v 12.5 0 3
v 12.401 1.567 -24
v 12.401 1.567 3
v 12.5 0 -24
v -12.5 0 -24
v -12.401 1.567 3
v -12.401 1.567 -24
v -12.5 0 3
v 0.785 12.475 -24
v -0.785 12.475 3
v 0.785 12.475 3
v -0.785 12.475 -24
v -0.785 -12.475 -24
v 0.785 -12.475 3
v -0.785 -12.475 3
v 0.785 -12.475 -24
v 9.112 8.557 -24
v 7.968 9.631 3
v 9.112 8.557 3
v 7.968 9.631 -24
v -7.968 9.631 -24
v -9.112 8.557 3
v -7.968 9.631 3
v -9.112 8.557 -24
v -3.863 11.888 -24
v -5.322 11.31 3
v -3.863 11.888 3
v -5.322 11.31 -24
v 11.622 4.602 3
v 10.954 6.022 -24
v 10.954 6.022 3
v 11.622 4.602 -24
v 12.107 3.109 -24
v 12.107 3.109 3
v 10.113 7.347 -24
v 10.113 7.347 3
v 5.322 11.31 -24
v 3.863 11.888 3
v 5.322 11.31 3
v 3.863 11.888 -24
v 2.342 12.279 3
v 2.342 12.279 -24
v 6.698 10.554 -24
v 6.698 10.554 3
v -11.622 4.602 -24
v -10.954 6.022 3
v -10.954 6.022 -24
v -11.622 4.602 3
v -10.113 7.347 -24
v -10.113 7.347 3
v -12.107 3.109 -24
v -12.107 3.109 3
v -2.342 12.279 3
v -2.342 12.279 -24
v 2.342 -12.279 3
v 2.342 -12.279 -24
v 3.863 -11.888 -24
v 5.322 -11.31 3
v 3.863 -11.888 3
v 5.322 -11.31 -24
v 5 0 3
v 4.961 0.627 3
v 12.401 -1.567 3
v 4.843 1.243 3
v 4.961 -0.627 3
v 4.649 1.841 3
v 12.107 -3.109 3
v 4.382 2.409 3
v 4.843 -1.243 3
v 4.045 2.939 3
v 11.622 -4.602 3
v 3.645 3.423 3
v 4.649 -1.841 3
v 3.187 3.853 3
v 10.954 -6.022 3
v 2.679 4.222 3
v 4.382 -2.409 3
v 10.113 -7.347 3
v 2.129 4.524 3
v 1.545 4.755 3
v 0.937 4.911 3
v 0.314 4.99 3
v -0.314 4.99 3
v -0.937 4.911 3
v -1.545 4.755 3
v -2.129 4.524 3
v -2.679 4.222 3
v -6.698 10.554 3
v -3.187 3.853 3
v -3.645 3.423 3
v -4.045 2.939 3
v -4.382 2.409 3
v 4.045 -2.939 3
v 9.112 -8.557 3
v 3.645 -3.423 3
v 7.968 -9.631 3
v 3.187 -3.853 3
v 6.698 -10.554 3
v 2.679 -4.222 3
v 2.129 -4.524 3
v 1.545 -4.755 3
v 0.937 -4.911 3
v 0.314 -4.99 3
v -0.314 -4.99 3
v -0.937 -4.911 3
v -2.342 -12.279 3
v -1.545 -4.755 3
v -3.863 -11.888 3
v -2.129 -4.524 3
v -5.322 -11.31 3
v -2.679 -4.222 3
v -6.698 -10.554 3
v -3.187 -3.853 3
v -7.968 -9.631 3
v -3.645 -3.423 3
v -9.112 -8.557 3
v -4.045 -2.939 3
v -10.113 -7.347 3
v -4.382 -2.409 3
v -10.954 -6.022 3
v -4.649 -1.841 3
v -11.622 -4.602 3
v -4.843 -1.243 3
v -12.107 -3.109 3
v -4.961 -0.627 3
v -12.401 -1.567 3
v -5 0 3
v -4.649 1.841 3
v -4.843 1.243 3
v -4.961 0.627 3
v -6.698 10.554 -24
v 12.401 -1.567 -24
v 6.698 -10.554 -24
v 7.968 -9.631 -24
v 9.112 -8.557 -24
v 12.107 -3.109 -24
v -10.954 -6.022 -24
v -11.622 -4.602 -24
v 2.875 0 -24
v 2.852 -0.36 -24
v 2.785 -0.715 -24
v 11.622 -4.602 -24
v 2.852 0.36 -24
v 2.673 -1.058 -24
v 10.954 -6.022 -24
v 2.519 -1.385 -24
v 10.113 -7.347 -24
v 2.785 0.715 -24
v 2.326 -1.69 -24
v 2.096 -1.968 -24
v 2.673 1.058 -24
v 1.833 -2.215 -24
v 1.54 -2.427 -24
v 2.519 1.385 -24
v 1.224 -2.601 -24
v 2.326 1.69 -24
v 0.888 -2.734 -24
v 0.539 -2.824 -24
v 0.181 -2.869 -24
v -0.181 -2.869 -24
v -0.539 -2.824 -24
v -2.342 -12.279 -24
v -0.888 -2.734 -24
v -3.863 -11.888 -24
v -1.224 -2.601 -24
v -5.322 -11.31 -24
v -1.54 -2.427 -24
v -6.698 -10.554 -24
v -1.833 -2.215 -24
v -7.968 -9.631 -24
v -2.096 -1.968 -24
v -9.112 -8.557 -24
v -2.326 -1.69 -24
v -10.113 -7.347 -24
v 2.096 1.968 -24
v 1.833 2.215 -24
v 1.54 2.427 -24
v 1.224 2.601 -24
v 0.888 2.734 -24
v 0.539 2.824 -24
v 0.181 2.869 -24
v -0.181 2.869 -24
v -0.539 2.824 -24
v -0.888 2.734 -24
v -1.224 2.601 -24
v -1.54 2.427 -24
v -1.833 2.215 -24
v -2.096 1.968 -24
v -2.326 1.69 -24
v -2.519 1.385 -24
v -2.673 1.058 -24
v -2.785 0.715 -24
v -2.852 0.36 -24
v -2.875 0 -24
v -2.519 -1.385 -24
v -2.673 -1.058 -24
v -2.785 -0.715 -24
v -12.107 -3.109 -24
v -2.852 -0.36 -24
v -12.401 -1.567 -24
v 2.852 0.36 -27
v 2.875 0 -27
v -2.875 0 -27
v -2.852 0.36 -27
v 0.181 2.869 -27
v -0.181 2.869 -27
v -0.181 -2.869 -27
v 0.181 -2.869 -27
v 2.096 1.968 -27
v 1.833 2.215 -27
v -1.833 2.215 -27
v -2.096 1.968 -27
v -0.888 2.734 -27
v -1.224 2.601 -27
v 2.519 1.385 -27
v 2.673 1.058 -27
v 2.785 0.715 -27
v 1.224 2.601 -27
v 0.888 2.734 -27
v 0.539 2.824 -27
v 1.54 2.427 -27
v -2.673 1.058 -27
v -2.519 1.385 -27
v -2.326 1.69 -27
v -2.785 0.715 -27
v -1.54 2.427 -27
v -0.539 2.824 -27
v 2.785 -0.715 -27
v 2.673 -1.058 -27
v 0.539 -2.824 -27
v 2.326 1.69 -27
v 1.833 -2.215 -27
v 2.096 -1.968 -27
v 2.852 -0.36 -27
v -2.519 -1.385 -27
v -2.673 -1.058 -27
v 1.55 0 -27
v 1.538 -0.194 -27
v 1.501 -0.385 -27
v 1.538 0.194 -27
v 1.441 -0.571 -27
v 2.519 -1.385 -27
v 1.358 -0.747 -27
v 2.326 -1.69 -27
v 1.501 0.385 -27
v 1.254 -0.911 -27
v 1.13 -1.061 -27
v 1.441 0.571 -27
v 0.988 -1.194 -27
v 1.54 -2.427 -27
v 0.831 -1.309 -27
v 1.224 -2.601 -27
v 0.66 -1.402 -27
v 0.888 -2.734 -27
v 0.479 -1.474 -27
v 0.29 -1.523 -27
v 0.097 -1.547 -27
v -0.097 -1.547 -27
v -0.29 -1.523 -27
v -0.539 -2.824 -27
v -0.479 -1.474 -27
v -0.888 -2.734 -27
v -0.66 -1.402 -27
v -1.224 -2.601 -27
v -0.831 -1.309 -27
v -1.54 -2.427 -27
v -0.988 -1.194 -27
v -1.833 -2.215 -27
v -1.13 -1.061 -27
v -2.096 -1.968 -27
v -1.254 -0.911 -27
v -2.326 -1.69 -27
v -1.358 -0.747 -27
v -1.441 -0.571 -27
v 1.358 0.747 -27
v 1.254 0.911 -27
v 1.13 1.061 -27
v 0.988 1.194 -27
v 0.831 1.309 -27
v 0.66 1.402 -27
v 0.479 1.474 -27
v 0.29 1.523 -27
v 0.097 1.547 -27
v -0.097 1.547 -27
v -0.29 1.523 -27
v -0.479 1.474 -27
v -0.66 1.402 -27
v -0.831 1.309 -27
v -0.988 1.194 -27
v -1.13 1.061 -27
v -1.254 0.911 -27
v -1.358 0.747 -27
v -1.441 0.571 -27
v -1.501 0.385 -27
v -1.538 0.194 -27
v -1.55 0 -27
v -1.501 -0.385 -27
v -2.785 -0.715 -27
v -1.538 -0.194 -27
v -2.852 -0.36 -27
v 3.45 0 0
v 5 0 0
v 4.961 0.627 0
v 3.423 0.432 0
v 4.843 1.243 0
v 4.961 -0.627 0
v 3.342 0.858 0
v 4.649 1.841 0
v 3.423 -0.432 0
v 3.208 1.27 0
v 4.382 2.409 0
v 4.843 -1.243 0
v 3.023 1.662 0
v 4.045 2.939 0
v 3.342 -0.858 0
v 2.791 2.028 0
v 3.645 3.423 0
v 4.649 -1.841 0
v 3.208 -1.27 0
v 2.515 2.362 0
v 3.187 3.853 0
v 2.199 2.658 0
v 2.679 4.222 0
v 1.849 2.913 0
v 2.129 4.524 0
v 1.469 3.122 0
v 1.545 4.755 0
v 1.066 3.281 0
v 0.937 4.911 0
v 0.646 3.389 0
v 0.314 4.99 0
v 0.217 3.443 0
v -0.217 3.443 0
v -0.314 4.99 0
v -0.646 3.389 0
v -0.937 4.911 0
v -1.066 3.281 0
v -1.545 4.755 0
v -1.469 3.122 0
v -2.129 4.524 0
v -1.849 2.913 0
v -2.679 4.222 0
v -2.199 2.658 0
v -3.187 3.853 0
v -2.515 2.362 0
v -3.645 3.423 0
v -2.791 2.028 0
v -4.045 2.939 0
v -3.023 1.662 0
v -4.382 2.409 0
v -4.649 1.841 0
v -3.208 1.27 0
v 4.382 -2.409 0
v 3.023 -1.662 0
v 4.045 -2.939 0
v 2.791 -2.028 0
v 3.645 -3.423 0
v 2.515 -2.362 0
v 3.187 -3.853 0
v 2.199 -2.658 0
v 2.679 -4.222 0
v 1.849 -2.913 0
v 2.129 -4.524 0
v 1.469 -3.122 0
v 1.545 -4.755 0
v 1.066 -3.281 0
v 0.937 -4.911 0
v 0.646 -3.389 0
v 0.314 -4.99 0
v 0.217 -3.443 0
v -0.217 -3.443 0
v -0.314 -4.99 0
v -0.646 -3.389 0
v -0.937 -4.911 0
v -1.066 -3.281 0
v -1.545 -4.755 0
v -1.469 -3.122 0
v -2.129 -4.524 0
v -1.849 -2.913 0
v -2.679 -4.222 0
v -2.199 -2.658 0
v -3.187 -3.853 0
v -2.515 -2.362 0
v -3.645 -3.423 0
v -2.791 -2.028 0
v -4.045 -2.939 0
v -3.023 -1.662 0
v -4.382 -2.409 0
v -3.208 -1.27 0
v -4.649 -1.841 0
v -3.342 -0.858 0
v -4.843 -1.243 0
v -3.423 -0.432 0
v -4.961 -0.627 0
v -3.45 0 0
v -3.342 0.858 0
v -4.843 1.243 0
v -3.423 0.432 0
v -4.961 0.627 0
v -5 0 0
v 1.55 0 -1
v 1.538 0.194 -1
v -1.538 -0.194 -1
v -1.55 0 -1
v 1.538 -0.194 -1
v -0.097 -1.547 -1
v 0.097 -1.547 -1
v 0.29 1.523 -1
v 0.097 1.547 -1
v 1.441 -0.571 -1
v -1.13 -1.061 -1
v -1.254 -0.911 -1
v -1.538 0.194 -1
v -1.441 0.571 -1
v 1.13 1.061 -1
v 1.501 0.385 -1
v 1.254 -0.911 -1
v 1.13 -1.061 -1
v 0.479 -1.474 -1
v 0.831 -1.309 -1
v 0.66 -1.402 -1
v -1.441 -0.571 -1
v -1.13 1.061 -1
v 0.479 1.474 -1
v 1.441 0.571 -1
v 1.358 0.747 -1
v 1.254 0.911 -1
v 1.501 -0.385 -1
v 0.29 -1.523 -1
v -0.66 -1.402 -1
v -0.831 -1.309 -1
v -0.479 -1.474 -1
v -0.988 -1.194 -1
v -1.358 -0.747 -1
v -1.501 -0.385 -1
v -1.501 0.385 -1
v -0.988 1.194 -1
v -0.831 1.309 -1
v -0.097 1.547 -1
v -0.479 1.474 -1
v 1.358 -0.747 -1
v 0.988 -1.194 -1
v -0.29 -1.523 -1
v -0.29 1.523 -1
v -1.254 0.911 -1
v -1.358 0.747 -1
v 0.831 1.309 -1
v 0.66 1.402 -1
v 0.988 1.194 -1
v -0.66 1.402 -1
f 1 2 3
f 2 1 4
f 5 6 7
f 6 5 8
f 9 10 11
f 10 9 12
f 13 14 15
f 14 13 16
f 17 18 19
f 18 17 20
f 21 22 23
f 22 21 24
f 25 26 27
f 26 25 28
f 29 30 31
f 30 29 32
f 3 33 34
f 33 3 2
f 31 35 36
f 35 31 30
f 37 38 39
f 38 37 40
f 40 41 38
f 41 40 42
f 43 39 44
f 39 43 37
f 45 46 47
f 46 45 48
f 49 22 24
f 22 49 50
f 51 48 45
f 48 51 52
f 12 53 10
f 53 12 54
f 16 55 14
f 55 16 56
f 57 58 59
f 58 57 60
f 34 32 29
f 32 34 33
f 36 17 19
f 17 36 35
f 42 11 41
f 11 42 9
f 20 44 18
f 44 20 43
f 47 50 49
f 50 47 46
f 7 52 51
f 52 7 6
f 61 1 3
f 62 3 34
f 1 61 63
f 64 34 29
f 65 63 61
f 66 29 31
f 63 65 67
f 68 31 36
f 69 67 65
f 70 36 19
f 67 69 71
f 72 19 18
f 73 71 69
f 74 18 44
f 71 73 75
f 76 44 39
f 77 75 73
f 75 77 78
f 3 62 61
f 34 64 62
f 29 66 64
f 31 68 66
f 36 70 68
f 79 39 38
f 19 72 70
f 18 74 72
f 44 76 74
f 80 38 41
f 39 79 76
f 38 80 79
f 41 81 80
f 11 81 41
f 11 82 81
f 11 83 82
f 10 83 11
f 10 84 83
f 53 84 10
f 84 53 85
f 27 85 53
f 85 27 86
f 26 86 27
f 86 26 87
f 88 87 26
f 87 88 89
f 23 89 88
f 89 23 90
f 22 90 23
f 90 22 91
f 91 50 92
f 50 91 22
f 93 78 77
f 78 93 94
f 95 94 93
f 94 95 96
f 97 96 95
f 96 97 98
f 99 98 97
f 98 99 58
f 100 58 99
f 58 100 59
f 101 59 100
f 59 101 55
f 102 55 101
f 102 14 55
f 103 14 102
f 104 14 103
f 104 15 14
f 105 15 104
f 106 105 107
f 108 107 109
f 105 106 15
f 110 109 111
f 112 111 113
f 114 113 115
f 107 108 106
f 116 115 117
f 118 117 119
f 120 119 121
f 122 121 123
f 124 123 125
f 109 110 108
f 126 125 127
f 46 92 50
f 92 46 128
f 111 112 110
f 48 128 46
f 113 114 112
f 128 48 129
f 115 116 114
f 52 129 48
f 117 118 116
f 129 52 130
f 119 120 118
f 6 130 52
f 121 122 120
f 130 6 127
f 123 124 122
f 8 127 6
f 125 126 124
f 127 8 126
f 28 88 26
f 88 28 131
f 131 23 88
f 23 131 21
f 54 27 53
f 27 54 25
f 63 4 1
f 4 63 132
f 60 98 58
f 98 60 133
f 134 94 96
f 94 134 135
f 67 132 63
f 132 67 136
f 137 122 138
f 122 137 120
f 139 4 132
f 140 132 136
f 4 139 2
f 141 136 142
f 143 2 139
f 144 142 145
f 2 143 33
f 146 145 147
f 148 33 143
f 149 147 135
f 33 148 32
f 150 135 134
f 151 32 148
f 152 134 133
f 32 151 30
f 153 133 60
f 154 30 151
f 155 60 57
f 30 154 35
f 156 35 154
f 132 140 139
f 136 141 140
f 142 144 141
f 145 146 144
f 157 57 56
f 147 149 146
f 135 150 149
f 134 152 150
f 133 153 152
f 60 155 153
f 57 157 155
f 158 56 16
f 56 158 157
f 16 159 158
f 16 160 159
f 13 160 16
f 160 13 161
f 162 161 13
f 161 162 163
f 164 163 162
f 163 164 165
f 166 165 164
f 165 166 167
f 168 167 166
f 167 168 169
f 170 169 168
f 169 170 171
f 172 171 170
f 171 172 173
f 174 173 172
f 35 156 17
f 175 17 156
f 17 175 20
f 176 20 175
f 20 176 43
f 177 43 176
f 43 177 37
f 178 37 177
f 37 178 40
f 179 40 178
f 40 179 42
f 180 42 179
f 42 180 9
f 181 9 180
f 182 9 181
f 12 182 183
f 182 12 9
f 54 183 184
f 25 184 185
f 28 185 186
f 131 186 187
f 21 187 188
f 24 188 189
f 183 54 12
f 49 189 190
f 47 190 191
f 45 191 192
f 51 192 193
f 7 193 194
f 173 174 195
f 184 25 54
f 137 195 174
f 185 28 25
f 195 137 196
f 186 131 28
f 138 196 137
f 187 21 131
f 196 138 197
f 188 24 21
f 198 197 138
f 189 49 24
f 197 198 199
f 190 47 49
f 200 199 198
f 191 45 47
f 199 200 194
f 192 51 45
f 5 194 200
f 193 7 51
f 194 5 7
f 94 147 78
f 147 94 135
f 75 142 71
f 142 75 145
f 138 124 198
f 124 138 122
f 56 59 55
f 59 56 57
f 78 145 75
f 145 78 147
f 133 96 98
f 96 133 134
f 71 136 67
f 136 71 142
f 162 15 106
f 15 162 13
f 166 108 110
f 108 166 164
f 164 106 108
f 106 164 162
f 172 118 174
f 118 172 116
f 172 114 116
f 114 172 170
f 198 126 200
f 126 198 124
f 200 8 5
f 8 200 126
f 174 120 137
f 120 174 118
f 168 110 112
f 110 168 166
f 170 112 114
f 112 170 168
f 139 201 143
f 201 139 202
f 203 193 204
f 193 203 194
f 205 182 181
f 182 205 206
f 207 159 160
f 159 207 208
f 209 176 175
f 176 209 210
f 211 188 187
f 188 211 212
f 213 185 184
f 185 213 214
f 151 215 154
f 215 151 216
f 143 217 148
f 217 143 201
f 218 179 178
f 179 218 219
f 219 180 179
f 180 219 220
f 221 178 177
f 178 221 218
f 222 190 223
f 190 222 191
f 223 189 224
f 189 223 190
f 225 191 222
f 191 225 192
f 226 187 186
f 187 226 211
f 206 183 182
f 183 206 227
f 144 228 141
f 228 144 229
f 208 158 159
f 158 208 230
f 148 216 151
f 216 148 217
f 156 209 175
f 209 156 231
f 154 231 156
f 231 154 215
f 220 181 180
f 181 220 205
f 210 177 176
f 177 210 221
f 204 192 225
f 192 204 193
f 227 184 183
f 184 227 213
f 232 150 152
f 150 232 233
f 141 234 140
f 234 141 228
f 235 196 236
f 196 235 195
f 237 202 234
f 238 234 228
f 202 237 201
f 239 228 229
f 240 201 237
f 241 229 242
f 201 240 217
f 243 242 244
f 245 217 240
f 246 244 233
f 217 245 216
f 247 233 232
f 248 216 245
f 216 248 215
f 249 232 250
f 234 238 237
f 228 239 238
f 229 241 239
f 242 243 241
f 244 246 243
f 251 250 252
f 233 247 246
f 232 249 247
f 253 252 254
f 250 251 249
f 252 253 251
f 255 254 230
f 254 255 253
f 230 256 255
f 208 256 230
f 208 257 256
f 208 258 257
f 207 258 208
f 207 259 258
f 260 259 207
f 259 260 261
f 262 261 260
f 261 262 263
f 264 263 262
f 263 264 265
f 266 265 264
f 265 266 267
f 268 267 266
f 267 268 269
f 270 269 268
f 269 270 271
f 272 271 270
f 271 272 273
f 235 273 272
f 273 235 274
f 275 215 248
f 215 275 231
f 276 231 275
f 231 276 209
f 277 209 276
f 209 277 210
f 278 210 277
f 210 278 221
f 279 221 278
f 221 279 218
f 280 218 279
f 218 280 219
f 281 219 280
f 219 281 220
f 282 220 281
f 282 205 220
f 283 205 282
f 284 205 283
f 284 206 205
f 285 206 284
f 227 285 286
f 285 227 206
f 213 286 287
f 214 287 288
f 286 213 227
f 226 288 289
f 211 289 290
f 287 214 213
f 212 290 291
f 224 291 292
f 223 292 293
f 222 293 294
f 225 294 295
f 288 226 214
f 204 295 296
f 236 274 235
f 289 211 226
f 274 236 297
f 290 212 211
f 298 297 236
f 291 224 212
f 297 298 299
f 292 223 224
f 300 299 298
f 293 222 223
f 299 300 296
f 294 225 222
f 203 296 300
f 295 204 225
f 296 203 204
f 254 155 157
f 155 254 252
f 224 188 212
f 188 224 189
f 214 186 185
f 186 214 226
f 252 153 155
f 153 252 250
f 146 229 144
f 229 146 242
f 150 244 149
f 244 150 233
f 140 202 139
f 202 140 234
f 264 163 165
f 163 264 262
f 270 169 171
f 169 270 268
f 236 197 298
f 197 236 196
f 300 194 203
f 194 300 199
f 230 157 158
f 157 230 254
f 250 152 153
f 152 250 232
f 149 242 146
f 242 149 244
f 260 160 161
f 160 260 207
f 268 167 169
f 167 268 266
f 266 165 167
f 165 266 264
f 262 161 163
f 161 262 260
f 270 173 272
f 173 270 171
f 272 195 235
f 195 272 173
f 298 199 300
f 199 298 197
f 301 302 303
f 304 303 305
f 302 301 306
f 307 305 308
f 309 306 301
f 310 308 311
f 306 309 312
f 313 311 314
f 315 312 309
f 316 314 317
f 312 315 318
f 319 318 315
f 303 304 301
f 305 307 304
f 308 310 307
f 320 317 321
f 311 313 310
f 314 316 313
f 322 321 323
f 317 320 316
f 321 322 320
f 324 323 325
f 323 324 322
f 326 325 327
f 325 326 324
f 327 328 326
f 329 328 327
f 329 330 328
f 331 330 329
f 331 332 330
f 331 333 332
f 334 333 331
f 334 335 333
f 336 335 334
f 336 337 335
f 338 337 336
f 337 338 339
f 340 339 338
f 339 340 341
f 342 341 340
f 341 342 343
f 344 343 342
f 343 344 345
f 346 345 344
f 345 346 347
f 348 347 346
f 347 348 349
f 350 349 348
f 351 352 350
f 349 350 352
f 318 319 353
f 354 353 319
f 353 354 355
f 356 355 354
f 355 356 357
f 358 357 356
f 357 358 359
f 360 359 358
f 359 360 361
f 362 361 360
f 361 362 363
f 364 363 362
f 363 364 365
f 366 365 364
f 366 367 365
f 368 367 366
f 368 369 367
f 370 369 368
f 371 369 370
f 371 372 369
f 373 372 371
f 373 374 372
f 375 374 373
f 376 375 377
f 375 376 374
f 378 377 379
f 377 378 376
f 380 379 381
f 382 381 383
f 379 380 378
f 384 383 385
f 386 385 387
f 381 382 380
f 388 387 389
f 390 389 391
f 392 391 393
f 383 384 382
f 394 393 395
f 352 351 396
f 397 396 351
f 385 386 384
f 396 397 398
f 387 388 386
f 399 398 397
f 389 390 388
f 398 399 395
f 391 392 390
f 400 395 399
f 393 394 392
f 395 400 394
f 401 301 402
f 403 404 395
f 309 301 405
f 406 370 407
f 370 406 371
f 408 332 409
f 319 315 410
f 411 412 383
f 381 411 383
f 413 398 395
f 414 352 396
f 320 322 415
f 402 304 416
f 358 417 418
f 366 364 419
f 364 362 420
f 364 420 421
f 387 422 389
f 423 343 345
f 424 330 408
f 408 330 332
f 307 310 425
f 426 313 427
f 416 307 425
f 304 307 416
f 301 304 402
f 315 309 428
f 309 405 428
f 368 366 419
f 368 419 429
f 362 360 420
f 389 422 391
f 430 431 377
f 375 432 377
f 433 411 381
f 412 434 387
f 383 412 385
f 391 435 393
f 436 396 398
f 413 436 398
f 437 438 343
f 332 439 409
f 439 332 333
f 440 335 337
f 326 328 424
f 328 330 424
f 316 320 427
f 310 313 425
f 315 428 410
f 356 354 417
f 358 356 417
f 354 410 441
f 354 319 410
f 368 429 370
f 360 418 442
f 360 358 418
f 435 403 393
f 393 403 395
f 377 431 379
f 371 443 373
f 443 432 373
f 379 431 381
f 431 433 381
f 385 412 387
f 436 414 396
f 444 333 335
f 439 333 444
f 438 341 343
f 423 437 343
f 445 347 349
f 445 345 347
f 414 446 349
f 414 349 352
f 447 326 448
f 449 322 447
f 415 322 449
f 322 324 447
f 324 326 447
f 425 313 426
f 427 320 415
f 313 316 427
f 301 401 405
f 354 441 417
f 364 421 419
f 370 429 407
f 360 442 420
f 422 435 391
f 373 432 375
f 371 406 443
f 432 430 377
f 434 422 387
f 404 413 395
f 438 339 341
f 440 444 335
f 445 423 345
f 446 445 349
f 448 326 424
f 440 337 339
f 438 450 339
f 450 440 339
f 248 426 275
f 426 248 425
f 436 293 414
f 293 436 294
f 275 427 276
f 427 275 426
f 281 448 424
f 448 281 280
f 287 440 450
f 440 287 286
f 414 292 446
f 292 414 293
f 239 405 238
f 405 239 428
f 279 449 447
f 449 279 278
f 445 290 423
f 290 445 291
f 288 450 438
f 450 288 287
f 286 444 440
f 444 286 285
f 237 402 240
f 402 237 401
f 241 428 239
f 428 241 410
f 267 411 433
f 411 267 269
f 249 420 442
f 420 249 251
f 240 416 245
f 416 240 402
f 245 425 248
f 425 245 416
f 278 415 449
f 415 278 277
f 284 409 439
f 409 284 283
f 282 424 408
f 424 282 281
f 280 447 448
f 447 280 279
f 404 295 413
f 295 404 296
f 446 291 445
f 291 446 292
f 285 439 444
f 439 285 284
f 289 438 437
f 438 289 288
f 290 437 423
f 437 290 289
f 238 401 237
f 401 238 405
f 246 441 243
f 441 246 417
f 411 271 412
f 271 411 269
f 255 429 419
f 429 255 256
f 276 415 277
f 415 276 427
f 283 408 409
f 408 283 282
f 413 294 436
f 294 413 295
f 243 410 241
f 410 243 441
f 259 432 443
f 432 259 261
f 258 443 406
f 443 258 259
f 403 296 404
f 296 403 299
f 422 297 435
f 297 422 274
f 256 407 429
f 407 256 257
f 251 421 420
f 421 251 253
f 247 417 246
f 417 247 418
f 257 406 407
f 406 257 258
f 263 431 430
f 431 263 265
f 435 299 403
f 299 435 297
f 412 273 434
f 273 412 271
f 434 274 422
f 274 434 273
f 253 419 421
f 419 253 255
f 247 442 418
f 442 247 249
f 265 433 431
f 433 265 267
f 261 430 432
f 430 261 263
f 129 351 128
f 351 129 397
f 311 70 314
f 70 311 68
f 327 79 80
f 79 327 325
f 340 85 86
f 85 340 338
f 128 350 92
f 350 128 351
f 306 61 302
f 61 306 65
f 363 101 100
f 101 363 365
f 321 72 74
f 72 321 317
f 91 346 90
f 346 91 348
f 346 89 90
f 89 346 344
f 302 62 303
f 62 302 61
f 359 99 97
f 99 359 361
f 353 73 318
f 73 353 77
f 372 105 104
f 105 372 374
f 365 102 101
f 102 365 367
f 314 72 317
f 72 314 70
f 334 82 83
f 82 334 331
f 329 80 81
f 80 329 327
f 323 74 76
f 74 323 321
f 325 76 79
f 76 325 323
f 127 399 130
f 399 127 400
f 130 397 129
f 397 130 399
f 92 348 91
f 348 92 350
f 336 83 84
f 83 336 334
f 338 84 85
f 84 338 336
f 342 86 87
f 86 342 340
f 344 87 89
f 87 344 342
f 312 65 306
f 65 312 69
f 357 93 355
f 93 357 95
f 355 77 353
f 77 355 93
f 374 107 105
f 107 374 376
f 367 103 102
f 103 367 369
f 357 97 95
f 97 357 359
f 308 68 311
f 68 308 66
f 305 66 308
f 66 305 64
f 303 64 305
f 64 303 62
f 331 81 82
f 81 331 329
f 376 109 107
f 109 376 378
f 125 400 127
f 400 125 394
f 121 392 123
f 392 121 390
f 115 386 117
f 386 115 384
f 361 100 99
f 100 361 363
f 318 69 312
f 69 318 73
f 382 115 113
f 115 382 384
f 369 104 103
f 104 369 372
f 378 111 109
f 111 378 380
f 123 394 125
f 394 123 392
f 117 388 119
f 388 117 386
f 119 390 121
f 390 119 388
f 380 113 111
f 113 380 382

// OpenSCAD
$fn = 50;

difference() {
	union() {
		translate(v = [0, 0, -24.0]) {
			cylinder(h = 27, r = 12.5);
		}
		#translate(v = [0, 0, -27.0]) {
			cylinder(h = 27, r = 2.875);
		}
	}
	union() {
		translate(v = [0, 0, 0]) {
			rotate(a = [0, 0, 0]) {
				difference() {
					union() {
						translate(v = [0, 0, -27.0]) {
							cylinder(h = 27, r = 1.25);
						}
						translate(v = [0, 0, -1.0]) {
							cylinder(h = 1.0, r1 = 1.55, r2 = 3.45);
						}
						translate(v = [0, 0, -27.0]) {
							cylinder(h = 27, r = 1.55);
						}
						translate(v = [0, 0, -27.0]) {
							cylinder(h = 27, r = 1.25);
						}
					}
					union();
				}
			}
		}
		#cylinder(h = 3, r = 5.0);
	}
}
